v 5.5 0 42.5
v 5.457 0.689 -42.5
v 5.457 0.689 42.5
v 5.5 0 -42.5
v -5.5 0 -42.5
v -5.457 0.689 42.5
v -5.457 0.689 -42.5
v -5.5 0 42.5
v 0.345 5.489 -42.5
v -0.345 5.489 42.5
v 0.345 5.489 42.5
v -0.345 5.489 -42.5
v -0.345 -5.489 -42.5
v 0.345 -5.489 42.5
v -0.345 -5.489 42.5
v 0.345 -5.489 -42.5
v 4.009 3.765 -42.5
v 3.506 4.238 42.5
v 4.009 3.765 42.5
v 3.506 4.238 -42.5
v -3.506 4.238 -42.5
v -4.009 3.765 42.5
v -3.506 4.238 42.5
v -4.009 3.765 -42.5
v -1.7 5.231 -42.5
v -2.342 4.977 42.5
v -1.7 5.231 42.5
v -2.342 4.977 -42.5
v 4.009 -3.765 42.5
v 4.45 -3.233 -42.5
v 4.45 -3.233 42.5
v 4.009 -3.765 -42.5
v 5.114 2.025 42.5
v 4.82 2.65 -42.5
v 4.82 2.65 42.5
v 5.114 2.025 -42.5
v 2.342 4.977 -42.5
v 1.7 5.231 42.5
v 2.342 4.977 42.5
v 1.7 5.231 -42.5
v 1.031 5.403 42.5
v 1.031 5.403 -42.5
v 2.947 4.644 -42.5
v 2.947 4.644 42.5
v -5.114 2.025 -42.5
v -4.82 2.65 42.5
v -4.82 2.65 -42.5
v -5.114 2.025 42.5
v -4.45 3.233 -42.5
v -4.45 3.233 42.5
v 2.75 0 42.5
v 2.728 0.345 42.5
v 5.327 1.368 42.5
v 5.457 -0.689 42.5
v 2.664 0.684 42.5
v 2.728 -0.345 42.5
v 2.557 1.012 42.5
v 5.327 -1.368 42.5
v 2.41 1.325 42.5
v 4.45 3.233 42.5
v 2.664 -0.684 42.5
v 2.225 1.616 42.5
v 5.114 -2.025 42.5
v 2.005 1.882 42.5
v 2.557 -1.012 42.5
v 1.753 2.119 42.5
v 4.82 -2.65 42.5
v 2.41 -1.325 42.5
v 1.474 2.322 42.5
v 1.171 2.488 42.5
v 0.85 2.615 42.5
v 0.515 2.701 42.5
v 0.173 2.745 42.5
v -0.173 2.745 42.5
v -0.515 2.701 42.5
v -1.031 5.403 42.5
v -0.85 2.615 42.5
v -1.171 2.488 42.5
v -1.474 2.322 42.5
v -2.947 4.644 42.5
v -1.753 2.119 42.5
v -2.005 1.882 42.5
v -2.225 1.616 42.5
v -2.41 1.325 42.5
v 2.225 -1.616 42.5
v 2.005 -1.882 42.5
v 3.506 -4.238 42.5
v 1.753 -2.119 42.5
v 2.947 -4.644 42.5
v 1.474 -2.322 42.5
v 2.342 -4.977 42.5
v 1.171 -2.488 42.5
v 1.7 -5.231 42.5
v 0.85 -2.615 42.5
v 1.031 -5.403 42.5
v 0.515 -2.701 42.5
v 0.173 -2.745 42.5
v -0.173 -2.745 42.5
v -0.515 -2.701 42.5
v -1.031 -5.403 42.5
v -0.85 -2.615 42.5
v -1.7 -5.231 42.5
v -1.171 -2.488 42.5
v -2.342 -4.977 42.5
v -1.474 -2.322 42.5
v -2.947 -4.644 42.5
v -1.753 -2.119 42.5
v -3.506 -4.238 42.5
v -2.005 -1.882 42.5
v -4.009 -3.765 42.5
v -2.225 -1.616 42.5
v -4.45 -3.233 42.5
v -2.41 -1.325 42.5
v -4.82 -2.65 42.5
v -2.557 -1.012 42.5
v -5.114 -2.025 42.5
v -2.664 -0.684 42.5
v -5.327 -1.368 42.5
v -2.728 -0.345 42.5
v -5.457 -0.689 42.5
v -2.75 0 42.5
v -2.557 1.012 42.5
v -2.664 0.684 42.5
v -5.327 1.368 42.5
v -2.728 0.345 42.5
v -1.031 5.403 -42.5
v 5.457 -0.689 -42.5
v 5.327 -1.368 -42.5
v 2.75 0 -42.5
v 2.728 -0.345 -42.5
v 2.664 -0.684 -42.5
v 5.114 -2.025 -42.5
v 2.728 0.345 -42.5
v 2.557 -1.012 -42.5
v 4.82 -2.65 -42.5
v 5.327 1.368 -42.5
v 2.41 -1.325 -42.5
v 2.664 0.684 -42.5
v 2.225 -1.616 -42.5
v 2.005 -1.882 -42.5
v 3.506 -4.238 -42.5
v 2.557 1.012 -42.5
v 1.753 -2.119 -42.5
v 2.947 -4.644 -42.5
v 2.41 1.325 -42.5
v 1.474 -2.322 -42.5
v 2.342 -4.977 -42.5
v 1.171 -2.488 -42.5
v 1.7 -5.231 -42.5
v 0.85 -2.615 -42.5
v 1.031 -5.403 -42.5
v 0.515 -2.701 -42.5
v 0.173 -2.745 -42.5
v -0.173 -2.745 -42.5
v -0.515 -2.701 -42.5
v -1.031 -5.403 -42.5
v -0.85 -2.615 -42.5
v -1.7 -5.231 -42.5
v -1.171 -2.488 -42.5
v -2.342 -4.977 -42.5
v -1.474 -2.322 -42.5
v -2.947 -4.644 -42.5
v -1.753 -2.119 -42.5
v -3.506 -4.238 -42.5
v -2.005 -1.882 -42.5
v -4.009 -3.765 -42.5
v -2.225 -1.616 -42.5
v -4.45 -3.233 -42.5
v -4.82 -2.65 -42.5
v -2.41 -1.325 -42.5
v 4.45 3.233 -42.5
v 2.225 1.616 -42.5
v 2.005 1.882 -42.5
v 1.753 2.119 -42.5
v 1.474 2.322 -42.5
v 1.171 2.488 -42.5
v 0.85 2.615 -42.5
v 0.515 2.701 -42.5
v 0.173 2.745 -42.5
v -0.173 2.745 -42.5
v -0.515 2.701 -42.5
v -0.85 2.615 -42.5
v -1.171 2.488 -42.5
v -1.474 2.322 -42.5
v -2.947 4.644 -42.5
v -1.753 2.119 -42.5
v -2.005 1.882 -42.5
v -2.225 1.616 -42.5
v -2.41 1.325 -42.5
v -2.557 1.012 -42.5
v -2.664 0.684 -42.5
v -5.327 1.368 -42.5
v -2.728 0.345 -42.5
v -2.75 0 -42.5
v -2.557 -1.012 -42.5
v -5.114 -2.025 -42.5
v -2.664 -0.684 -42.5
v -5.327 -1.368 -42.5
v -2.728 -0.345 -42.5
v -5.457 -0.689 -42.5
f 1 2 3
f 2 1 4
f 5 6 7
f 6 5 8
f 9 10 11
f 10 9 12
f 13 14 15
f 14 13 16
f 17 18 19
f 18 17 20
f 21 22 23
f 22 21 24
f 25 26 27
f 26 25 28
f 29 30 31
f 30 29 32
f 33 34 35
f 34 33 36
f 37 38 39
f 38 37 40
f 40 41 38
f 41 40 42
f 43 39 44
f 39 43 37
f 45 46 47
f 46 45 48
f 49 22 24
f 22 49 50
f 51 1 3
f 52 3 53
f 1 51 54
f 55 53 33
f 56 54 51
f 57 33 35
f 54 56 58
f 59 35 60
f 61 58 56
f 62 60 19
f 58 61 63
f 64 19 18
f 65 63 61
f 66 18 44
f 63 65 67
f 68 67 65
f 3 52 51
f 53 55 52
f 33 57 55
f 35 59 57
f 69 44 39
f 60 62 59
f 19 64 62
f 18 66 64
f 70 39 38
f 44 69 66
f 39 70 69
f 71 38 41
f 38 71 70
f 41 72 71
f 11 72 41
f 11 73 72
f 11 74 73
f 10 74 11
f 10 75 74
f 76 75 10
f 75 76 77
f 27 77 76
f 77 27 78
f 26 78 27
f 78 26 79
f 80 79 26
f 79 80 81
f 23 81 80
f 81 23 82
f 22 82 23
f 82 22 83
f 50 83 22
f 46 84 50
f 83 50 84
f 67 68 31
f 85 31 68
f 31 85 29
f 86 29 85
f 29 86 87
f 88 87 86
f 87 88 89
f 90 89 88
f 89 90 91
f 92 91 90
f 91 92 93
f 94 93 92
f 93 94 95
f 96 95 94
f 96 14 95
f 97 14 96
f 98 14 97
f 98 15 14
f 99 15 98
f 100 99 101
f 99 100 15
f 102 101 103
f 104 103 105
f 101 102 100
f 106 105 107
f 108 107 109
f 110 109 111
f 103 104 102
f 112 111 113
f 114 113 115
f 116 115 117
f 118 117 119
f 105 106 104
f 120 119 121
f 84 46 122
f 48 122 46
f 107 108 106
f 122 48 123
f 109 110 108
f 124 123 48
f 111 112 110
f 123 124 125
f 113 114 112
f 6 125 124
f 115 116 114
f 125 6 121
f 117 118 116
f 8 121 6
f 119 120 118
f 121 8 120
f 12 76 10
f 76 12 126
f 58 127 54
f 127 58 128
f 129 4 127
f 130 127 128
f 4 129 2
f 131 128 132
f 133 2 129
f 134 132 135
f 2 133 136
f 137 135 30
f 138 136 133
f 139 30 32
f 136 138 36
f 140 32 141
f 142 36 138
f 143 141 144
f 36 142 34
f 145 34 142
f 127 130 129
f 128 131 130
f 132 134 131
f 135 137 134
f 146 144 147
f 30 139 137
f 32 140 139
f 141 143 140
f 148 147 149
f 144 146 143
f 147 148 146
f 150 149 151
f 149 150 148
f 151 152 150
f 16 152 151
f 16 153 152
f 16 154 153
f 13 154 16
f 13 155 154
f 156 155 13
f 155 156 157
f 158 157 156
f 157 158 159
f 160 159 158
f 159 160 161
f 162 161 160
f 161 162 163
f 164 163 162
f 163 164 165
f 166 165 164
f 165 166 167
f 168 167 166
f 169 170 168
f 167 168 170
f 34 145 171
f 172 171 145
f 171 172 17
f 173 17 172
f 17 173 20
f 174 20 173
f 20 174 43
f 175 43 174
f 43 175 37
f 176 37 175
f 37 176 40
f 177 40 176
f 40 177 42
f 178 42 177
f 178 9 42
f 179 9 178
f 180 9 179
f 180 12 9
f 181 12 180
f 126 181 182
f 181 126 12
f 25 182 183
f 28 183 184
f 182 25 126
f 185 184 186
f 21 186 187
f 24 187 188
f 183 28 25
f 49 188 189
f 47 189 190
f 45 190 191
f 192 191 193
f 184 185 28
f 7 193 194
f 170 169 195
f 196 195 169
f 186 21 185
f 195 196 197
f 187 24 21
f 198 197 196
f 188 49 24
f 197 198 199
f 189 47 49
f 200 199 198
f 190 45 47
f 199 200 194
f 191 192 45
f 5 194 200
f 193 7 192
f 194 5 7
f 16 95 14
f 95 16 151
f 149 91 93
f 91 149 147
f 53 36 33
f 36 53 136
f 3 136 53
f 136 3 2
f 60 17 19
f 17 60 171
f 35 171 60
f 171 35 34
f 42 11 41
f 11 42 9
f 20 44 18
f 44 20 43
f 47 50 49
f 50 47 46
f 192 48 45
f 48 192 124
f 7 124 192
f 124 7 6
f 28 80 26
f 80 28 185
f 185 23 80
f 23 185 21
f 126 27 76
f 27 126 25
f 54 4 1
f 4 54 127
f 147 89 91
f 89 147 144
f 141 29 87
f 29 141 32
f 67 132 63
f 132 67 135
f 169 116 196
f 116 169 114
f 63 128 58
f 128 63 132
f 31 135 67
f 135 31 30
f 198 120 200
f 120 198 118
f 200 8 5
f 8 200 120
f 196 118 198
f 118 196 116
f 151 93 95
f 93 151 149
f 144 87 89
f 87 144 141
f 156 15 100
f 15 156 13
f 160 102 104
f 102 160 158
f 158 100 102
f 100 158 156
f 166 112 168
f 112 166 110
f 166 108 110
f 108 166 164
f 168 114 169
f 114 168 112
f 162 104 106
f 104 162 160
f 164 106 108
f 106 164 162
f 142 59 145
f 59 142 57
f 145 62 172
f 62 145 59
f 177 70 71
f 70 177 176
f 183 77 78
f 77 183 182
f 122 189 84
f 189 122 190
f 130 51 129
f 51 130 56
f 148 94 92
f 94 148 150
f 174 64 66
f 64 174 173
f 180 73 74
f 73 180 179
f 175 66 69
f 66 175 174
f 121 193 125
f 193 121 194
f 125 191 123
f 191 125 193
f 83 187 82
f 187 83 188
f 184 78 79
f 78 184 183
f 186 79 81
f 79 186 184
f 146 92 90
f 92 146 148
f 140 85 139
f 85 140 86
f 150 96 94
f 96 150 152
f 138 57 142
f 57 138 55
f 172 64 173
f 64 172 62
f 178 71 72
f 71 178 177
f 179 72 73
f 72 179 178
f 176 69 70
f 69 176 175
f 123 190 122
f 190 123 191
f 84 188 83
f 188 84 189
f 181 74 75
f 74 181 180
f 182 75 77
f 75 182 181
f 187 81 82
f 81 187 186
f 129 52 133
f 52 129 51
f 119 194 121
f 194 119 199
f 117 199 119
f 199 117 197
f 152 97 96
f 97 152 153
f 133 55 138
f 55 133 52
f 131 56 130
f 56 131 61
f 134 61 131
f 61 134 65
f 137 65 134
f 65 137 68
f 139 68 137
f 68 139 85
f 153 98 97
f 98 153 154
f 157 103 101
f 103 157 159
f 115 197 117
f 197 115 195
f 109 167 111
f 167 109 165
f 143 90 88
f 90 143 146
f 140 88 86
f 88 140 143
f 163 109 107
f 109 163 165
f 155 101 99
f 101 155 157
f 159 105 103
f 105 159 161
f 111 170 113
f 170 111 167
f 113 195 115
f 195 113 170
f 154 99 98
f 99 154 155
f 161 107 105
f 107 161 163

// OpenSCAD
$fn = 50;


difference() {
	union() {
		translate(v = [0, 0, -42.5000000000]) {
			cylinder(h = 85, r = 5.5000000000);
		}
	}
	union() {
		translate(v = [0, 0, -100.0000000000]) {
			cylinder(h = 200, r = 2.7500000000);
		}
	}
}
